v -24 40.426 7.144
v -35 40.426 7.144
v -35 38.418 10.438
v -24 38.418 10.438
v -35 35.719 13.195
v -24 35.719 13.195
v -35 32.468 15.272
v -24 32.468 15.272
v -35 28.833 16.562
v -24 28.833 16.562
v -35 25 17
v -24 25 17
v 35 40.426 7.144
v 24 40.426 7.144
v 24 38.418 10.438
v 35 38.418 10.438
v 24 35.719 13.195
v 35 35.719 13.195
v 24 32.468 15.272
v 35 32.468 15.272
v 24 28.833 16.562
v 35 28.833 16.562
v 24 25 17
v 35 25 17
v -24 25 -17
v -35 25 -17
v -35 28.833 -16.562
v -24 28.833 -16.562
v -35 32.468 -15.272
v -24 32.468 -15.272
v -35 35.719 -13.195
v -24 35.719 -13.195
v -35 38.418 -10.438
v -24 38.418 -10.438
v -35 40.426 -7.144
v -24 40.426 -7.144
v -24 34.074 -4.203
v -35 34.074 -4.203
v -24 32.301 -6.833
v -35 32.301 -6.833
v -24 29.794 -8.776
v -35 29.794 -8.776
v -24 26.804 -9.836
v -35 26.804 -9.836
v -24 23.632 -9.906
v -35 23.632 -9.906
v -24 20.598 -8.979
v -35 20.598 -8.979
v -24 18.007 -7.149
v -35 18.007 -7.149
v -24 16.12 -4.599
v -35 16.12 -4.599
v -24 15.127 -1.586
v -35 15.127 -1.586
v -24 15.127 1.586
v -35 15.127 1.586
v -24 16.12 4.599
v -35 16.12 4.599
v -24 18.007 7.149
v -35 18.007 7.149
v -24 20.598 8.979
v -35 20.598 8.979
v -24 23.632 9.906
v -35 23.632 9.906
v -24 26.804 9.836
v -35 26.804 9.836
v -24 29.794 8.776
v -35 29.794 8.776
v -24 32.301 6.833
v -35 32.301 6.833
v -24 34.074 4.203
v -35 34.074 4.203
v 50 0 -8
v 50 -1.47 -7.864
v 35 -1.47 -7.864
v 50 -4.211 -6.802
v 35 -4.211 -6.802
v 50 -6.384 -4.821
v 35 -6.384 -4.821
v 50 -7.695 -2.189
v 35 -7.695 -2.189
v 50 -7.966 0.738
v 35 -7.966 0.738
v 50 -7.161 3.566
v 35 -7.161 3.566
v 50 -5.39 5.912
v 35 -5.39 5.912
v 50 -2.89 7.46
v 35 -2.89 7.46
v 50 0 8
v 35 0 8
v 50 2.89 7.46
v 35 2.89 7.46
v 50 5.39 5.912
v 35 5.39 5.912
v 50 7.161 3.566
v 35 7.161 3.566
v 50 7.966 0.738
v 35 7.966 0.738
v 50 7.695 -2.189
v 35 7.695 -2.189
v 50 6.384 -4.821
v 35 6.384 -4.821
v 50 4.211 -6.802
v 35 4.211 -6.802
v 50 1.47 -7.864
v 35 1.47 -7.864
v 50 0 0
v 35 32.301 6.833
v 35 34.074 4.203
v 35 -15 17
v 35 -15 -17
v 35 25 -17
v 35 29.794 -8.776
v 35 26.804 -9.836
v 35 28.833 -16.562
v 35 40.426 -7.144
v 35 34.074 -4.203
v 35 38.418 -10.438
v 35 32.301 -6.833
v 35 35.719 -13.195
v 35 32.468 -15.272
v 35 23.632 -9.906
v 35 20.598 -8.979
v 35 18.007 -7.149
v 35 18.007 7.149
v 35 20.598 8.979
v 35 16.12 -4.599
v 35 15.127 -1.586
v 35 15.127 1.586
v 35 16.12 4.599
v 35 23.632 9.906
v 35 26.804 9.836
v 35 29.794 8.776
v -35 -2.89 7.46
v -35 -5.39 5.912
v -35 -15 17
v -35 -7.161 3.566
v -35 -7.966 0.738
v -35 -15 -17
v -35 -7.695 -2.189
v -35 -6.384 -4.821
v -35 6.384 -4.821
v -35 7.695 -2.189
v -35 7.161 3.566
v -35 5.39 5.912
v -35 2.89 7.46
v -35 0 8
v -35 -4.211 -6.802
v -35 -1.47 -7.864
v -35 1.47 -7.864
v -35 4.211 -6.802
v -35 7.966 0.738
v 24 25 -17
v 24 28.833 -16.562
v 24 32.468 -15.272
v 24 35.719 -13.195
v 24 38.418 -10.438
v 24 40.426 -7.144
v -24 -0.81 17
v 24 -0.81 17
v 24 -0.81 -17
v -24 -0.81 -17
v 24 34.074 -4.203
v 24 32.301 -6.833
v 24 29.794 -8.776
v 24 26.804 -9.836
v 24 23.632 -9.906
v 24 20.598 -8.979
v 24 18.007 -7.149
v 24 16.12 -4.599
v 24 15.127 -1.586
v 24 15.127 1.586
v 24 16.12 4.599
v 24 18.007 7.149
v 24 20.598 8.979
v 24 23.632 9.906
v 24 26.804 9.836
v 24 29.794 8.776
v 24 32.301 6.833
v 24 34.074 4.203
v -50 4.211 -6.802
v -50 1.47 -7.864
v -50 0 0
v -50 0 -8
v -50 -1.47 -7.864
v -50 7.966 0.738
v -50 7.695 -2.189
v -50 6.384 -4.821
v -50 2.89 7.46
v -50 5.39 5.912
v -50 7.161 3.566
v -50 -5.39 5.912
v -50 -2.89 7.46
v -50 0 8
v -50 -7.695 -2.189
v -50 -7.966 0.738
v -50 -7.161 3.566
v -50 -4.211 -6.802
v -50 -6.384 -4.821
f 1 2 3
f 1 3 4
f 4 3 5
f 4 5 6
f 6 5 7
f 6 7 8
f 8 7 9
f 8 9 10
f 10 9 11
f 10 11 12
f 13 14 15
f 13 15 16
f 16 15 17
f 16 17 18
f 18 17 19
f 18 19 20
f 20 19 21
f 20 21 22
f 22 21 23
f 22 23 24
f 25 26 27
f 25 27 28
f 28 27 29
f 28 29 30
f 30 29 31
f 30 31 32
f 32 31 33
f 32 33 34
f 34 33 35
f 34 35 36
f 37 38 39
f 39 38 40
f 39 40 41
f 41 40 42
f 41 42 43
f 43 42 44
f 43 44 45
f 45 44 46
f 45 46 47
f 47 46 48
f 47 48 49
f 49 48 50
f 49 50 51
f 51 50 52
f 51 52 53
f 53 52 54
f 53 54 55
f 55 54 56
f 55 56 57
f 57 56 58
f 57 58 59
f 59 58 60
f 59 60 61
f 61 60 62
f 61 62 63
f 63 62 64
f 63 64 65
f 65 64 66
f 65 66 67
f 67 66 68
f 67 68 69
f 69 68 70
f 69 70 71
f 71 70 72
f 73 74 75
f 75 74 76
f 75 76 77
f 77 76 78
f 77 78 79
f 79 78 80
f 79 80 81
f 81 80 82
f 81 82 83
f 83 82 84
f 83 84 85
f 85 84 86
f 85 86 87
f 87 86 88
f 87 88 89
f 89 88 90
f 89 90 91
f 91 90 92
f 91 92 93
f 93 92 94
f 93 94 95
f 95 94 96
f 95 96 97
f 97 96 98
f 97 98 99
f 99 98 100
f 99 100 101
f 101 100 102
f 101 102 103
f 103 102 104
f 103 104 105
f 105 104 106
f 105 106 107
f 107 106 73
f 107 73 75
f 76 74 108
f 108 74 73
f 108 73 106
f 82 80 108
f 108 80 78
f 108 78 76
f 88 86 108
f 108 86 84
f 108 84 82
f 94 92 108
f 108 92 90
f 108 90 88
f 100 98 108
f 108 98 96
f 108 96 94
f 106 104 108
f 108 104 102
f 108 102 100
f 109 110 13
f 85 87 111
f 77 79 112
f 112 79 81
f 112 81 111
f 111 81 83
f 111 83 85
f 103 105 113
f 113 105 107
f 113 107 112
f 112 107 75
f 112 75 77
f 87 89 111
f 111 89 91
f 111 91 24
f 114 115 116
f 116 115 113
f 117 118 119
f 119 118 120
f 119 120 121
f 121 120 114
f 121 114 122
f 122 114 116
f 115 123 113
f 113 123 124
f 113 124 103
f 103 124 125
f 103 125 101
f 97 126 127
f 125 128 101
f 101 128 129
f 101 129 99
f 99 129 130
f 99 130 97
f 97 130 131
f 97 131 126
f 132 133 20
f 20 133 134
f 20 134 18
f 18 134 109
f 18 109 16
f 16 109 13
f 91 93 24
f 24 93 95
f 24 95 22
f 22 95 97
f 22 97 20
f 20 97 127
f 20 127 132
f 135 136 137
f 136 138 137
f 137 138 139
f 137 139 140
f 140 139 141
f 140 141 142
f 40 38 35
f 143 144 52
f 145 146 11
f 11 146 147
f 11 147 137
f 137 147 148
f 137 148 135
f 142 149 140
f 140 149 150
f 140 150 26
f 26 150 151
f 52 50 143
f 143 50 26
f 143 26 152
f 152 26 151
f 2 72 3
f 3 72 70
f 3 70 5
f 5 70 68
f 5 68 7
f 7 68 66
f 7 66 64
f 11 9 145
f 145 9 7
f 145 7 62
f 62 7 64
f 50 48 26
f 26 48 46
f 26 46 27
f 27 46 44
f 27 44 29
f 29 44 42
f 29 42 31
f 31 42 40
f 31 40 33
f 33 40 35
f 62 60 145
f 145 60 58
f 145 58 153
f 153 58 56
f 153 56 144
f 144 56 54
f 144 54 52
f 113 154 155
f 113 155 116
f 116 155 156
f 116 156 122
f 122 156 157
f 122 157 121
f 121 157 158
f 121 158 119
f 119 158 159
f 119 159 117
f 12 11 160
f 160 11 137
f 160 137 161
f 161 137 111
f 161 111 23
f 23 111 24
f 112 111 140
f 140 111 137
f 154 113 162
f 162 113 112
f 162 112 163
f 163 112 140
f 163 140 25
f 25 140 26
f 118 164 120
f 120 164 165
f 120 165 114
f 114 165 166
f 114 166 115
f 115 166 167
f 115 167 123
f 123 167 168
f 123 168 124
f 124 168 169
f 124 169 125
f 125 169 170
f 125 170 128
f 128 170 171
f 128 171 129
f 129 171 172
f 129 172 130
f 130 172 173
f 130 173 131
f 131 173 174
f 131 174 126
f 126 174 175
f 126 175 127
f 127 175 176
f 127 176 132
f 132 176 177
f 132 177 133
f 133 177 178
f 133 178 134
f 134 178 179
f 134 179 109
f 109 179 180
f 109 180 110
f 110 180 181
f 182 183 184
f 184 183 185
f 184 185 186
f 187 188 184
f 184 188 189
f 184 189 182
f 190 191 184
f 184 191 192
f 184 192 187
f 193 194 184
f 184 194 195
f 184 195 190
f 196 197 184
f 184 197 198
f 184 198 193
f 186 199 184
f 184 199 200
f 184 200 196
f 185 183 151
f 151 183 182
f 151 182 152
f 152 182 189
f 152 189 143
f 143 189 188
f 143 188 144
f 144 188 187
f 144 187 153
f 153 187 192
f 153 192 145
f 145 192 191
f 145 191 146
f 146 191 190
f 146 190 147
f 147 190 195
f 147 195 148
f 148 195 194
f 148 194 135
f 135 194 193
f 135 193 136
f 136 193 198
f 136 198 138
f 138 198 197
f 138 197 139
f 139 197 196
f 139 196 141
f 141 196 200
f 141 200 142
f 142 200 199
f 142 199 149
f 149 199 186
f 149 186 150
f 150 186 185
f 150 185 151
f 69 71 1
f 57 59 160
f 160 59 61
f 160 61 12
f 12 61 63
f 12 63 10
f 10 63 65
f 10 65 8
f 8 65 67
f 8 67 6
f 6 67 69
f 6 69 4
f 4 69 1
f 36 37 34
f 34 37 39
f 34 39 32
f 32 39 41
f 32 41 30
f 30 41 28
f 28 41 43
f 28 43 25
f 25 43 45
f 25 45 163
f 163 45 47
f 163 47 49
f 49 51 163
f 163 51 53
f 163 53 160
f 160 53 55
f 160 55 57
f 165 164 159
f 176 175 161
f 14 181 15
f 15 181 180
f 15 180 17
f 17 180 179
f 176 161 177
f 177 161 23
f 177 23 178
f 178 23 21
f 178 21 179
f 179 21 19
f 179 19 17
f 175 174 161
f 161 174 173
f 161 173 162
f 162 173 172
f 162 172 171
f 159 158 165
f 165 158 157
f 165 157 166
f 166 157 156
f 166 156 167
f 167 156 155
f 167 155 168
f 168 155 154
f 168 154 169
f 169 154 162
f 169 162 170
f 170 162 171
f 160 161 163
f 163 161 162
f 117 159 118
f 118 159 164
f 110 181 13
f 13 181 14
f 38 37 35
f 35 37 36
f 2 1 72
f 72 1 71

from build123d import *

# Parameters (mm, degrees)
SKETCH1_R           = 8
BOSS_EXTRUDE1_DEPTH = 50
SKETCH2_R           = 10
BOSS_EXTRUDE2_DEPTH = 35
SKETCH3_W           = 48
SKETCH3_H           = 42
CUT_EXTRUDE1_DEPTH  = 35
SKETCH4_W           = 48
SKETCH4_H           = 0.81
CUT_EXTRUDE2_DEPTH  = 74.620649277
CUT_EXTRUDE3_REACH  = 98.322


with BuildPart() as part:
    # Sketch1 → Boss-Extrude1 (new, symmetric)
    with BuildSketch(Plane(origin=(0, 0, 0), x_dir=(0, 0, -1), z_dir=(1, 0, 0))):
        Circle(SKETCH1_R)
    extrude(amount=BOSS_EXTRUDE1_DEPTH, both=True)

    # Sketch2 → Boss-Extrude2 (add, symmetric)
    with BuildSketch(Plane(origin=(0, 0, 0), x_dir=(0, 0, -1), z_dir=(1, 0, 0))):
        with BuildLine():
            Line((-17, 25), (-17, -15))
            Line((-17, -15), (17, -15))
            Line((17, -15), (17, 25))
            ThreePointArc((17, 25), (0, 42), (-17, 25))
        make_face()
        with Locations((0, 25)):
            Circle(SKETCH2_R, mode=Mode.SUBTRACT)
    extrude(amount=BOSS_EXTRUDE2_DEPTH, both=True)

    # Sketch3 → Cut-Extrude1 (cut, symmetric)
    with BuildSketch(Plane.XY):
        with Locations((0, 21)):
            Rectangle(SKETCH3_W, SKETCH3_H)
    extrude(amount=CUT_EXTRUDE1_DEPTH, both=True, mode=Mode.SUBTRACT)

    # Sketch4 → Cut-Extrude2 (cut, through all)
    with BuildSketch(Plane(origin=(0, 0, -17), x_dir=(-1, 0, 0), z_dir=(0, 0, -1))):
        with Locations((0, -0.405)):
            Rectangle(SKETCH4_W, SKETCH4_H)
    extrude(amount=-CUT_EXTRUDE2_DEPTH, mode=Mode.SUBTRACT)

    # Cut-Extrude3: up to this face of the body (flat: up to its plane)
    cut_extrude3_end = Plane(part.part.faces().sort_by_distance((35, 10.448870599, 0))[0])
    # Sketch5 → Cut-Extrude3 (cut, up to the picked face)
    with BuildSketch(Plane.ZY.offset(35), mode=Mode.PRIVATE) as cut_extrude3_sk1:
        with BuildLine():
            Line((-7.14443883, 40.425854719), (-4.202611077, 34.074032187))
            ThreePointArc((-4.202611077, 34.074032187), (0, 35), (4.202611077, 34.074032187))
            Line((4.202611077, 34.074032187), (7.14443883, 40.425854719))
            ThreePointArc((7.14443883, 40.425854719), (0, 42), (-7.14443883, 40.425854719))
        make_face()
    cut_extrude3_tool1 = split(extrude(cut_extrude3_sk1.sketch, amount=-CUT_EXTRUDE3_REACH, mode=Mode.PRIVATE), bisect_by=cut_extrude3_end, keep=Keep.BOTH, mode=Mode.PRIVATE)
    add(cut_extrude3_tool1.solids().sort_by(Axis((-35, 38.373758, 0), (1, 0, 0)))[0], mode=Mode.SUBTRACT)


solid = part.part
